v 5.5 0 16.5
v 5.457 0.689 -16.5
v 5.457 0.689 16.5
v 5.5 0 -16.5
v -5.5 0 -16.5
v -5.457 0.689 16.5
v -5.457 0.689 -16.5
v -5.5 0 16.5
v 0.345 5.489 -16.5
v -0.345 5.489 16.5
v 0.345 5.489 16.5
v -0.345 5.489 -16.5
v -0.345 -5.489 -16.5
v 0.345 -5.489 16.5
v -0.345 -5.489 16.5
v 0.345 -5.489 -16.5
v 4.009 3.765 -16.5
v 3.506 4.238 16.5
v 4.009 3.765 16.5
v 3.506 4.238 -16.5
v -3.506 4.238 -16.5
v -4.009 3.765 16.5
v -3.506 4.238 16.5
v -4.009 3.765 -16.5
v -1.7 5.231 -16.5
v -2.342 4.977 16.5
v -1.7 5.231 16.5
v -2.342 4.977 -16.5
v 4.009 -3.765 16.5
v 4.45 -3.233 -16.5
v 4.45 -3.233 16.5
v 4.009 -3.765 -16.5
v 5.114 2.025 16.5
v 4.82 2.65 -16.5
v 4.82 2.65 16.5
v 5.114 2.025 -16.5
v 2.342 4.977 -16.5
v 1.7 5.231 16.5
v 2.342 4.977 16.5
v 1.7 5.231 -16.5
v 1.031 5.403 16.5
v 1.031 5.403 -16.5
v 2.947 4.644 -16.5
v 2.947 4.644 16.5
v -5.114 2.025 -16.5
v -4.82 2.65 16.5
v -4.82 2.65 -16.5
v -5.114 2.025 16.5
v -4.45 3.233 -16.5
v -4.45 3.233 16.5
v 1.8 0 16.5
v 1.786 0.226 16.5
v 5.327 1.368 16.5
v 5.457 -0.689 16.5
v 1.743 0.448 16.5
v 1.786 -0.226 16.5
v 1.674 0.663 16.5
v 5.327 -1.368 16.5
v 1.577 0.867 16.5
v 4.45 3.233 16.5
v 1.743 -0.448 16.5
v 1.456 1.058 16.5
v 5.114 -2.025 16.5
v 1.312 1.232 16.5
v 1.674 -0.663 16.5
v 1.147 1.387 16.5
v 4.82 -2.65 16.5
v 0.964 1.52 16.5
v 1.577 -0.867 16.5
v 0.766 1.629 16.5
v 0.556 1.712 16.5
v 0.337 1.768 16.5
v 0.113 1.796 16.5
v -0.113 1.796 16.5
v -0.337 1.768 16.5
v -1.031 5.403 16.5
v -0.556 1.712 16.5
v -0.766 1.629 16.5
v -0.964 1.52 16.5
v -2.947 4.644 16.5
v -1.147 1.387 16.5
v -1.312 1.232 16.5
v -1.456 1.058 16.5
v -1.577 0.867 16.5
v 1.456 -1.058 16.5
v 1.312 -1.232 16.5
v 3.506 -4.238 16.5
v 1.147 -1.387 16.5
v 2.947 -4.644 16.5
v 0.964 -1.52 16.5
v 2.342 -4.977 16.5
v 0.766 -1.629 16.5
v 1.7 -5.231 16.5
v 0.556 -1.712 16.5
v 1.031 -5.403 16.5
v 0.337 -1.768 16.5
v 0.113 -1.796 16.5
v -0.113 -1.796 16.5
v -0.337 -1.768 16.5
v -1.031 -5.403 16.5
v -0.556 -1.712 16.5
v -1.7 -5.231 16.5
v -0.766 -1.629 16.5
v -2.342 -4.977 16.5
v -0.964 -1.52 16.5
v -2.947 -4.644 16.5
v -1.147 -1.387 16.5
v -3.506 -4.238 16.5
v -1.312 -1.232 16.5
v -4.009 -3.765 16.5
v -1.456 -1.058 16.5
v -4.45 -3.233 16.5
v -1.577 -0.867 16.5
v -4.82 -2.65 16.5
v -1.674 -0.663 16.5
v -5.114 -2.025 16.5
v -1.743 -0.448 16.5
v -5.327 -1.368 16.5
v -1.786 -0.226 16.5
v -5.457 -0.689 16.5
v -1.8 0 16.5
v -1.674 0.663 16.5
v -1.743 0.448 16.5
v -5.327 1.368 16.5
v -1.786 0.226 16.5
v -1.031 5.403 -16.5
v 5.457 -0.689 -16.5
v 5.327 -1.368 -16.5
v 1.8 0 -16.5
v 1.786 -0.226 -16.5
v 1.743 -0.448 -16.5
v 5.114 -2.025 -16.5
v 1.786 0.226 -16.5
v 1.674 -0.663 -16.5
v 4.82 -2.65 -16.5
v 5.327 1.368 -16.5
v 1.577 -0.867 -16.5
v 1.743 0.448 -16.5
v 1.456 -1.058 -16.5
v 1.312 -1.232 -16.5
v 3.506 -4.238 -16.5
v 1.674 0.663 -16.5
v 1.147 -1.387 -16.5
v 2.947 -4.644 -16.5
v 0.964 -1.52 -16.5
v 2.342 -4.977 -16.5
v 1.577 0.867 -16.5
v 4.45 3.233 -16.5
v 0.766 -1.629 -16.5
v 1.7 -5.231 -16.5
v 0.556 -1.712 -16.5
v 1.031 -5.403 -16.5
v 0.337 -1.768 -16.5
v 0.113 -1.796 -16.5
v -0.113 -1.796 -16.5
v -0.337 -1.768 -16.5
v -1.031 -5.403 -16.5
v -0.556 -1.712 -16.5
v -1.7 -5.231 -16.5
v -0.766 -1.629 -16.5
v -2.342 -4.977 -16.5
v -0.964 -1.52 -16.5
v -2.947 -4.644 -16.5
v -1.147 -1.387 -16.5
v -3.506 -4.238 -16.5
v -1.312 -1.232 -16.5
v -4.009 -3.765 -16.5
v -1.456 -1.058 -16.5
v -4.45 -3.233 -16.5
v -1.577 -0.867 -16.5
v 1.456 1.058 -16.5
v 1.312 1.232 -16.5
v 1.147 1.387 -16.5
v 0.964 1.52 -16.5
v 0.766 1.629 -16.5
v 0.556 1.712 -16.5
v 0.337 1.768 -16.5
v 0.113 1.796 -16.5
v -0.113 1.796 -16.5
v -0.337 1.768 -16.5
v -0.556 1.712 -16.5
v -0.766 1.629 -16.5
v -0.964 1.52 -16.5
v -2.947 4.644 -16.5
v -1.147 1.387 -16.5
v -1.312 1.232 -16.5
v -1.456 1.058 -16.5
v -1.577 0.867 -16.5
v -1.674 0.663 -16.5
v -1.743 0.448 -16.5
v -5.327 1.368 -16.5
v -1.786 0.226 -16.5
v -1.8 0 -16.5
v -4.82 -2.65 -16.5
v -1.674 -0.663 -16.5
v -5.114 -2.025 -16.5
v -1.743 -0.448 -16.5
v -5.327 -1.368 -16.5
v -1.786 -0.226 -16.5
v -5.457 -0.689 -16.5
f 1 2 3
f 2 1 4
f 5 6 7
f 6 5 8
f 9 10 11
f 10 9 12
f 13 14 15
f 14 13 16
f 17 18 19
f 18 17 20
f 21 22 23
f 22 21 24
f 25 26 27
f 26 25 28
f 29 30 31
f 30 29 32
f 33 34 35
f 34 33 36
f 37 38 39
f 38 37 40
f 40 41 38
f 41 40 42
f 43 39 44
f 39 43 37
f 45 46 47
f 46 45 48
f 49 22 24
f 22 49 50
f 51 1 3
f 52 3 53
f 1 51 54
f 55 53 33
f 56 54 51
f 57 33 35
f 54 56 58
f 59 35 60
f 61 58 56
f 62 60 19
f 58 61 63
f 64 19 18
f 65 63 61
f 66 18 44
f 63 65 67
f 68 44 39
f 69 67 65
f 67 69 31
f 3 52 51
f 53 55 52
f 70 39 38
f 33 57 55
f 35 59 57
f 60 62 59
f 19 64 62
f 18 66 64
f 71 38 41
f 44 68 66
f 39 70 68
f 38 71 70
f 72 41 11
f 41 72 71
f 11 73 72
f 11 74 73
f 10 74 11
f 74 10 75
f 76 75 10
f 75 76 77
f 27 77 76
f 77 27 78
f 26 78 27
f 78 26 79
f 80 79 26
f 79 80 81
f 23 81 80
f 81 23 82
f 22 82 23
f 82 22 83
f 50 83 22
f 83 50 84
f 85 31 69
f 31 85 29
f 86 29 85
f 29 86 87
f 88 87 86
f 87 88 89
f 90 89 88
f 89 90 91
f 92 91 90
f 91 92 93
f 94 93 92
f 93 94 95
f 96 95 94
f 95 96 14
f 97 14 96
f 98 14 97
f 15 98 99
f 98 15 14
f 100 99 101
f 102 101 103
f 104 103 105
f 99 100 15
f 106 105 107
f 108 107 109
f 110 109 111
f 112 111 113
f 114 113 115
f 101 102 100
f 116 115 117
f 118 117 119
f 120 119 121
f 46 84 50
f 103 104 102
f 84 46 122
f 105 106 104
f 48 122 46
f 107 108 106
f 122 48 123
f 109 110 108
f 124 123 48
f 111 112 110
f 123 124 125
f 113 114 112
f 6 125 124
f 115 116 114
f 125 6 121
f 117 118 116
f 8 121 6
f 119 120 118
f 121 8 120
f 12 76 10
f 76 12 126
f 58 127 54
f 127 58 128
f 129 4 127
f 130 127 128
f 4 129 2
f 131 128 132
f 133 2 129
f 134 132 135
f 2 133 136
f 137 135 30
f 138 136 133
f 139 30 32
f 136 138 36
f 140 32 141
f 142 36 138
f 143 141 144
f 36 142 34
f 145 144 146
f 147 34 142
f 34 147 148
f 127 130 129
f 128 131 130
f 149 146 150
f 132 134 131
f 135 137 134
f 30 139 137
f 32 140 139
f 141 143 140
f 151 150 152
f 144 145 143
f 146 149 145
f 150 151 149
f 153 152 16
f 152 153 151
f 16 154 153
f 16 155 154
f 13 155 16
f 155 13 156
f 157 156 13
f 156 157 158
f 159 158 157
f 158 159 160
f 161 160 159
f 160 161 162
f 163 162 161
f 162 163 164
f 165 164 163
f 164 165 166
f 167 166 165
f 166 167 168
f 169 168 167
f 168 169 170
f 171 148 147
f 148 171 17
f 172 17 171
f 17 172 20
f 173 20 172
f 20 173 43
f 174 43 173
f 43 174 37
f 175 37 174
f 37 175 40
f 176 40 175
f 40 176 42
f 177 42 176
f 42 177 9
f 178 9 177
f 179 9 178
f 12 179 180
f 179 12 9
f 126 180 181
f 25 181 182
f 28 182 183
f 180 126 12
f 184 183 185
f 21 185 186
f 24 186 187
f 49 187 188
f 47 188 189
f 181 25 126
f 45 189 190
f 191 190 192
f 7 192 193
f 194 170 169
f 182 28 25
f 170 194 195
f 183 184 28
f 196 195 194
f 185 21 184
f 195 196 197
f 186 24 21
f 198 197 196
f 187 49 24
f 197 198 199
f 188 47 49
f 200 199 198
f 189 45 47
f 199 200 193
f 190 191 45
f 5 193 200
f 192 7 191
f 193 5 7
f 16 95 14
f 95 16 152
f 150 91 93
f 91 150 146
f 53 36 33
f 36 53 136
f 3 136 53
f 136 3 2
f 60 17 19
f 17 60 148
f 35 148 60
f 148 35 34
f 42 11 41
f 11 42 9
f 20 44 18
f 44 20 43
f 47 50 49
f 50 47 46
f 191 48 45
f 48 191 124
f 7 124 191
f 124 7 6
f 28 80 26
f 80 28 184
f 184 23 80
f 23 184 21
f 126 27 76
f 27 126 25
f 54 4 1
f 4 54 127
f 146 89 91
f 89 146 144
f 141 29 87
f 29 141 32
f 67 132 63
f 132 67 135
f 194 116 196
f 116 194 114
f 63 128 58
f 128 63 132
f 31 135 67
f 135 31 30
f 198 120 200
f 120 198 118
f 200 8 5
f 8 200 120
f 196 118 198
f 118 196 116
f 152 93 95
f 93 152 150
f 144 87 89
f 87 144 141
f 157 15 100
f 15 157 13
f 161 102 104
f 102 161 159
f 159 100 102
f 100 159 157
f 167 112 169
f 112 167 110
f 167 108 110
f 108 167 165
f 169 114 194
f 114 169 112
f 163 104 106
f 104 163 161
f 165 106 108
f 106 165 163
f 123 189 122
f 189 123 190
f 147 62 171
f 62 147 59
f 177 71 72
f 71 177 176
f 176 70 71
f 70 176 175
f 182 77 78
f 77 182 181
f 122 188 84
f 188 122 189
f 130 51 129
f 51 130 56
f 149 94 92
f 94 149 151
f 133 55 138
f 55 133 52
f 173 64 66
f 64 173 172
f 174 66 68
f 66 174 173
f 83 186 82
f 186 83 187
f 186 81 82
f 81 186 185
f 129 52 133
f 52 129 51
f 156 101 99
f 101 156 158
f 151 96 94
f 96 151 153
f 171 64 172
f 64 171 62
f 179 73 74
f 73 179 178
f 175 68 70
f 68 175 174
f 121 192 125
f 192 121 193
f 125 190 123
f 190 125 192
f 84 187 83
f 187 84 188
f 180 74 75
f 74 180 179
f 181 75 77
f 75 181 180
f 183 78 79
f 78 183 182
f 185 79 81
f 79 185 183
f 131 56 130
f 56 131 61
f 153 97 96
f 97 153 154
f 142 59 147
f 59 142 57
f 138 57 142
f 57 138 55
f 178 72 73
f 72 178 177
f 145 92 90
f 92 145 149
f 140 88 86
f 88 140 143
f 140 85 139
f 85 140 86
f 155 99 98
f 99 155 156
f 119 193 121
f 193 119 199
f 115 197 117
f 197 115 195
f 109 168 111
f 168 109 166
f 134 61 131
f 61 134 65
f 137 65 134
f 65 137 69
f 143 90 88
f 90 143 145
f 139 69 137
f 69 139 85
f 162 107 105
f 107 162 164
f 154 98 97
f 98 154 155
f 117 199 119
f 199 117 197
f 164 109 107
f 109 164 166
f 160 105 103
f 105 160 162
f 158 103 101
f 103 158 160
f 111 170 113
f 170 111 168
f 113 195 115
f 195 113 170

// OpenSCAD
$fn = 50;


difference() {
	union() {
		translate(v = [0, 0, -16.5000000000]) {
			cylinder(h = 33, r = 5.5000000000);
		}
	}
	union() {
		translate(v = [0, 0, -100.0000000000]) {
			cylinder(h = 200, r = 1.8000000000);
		}
	}
}
